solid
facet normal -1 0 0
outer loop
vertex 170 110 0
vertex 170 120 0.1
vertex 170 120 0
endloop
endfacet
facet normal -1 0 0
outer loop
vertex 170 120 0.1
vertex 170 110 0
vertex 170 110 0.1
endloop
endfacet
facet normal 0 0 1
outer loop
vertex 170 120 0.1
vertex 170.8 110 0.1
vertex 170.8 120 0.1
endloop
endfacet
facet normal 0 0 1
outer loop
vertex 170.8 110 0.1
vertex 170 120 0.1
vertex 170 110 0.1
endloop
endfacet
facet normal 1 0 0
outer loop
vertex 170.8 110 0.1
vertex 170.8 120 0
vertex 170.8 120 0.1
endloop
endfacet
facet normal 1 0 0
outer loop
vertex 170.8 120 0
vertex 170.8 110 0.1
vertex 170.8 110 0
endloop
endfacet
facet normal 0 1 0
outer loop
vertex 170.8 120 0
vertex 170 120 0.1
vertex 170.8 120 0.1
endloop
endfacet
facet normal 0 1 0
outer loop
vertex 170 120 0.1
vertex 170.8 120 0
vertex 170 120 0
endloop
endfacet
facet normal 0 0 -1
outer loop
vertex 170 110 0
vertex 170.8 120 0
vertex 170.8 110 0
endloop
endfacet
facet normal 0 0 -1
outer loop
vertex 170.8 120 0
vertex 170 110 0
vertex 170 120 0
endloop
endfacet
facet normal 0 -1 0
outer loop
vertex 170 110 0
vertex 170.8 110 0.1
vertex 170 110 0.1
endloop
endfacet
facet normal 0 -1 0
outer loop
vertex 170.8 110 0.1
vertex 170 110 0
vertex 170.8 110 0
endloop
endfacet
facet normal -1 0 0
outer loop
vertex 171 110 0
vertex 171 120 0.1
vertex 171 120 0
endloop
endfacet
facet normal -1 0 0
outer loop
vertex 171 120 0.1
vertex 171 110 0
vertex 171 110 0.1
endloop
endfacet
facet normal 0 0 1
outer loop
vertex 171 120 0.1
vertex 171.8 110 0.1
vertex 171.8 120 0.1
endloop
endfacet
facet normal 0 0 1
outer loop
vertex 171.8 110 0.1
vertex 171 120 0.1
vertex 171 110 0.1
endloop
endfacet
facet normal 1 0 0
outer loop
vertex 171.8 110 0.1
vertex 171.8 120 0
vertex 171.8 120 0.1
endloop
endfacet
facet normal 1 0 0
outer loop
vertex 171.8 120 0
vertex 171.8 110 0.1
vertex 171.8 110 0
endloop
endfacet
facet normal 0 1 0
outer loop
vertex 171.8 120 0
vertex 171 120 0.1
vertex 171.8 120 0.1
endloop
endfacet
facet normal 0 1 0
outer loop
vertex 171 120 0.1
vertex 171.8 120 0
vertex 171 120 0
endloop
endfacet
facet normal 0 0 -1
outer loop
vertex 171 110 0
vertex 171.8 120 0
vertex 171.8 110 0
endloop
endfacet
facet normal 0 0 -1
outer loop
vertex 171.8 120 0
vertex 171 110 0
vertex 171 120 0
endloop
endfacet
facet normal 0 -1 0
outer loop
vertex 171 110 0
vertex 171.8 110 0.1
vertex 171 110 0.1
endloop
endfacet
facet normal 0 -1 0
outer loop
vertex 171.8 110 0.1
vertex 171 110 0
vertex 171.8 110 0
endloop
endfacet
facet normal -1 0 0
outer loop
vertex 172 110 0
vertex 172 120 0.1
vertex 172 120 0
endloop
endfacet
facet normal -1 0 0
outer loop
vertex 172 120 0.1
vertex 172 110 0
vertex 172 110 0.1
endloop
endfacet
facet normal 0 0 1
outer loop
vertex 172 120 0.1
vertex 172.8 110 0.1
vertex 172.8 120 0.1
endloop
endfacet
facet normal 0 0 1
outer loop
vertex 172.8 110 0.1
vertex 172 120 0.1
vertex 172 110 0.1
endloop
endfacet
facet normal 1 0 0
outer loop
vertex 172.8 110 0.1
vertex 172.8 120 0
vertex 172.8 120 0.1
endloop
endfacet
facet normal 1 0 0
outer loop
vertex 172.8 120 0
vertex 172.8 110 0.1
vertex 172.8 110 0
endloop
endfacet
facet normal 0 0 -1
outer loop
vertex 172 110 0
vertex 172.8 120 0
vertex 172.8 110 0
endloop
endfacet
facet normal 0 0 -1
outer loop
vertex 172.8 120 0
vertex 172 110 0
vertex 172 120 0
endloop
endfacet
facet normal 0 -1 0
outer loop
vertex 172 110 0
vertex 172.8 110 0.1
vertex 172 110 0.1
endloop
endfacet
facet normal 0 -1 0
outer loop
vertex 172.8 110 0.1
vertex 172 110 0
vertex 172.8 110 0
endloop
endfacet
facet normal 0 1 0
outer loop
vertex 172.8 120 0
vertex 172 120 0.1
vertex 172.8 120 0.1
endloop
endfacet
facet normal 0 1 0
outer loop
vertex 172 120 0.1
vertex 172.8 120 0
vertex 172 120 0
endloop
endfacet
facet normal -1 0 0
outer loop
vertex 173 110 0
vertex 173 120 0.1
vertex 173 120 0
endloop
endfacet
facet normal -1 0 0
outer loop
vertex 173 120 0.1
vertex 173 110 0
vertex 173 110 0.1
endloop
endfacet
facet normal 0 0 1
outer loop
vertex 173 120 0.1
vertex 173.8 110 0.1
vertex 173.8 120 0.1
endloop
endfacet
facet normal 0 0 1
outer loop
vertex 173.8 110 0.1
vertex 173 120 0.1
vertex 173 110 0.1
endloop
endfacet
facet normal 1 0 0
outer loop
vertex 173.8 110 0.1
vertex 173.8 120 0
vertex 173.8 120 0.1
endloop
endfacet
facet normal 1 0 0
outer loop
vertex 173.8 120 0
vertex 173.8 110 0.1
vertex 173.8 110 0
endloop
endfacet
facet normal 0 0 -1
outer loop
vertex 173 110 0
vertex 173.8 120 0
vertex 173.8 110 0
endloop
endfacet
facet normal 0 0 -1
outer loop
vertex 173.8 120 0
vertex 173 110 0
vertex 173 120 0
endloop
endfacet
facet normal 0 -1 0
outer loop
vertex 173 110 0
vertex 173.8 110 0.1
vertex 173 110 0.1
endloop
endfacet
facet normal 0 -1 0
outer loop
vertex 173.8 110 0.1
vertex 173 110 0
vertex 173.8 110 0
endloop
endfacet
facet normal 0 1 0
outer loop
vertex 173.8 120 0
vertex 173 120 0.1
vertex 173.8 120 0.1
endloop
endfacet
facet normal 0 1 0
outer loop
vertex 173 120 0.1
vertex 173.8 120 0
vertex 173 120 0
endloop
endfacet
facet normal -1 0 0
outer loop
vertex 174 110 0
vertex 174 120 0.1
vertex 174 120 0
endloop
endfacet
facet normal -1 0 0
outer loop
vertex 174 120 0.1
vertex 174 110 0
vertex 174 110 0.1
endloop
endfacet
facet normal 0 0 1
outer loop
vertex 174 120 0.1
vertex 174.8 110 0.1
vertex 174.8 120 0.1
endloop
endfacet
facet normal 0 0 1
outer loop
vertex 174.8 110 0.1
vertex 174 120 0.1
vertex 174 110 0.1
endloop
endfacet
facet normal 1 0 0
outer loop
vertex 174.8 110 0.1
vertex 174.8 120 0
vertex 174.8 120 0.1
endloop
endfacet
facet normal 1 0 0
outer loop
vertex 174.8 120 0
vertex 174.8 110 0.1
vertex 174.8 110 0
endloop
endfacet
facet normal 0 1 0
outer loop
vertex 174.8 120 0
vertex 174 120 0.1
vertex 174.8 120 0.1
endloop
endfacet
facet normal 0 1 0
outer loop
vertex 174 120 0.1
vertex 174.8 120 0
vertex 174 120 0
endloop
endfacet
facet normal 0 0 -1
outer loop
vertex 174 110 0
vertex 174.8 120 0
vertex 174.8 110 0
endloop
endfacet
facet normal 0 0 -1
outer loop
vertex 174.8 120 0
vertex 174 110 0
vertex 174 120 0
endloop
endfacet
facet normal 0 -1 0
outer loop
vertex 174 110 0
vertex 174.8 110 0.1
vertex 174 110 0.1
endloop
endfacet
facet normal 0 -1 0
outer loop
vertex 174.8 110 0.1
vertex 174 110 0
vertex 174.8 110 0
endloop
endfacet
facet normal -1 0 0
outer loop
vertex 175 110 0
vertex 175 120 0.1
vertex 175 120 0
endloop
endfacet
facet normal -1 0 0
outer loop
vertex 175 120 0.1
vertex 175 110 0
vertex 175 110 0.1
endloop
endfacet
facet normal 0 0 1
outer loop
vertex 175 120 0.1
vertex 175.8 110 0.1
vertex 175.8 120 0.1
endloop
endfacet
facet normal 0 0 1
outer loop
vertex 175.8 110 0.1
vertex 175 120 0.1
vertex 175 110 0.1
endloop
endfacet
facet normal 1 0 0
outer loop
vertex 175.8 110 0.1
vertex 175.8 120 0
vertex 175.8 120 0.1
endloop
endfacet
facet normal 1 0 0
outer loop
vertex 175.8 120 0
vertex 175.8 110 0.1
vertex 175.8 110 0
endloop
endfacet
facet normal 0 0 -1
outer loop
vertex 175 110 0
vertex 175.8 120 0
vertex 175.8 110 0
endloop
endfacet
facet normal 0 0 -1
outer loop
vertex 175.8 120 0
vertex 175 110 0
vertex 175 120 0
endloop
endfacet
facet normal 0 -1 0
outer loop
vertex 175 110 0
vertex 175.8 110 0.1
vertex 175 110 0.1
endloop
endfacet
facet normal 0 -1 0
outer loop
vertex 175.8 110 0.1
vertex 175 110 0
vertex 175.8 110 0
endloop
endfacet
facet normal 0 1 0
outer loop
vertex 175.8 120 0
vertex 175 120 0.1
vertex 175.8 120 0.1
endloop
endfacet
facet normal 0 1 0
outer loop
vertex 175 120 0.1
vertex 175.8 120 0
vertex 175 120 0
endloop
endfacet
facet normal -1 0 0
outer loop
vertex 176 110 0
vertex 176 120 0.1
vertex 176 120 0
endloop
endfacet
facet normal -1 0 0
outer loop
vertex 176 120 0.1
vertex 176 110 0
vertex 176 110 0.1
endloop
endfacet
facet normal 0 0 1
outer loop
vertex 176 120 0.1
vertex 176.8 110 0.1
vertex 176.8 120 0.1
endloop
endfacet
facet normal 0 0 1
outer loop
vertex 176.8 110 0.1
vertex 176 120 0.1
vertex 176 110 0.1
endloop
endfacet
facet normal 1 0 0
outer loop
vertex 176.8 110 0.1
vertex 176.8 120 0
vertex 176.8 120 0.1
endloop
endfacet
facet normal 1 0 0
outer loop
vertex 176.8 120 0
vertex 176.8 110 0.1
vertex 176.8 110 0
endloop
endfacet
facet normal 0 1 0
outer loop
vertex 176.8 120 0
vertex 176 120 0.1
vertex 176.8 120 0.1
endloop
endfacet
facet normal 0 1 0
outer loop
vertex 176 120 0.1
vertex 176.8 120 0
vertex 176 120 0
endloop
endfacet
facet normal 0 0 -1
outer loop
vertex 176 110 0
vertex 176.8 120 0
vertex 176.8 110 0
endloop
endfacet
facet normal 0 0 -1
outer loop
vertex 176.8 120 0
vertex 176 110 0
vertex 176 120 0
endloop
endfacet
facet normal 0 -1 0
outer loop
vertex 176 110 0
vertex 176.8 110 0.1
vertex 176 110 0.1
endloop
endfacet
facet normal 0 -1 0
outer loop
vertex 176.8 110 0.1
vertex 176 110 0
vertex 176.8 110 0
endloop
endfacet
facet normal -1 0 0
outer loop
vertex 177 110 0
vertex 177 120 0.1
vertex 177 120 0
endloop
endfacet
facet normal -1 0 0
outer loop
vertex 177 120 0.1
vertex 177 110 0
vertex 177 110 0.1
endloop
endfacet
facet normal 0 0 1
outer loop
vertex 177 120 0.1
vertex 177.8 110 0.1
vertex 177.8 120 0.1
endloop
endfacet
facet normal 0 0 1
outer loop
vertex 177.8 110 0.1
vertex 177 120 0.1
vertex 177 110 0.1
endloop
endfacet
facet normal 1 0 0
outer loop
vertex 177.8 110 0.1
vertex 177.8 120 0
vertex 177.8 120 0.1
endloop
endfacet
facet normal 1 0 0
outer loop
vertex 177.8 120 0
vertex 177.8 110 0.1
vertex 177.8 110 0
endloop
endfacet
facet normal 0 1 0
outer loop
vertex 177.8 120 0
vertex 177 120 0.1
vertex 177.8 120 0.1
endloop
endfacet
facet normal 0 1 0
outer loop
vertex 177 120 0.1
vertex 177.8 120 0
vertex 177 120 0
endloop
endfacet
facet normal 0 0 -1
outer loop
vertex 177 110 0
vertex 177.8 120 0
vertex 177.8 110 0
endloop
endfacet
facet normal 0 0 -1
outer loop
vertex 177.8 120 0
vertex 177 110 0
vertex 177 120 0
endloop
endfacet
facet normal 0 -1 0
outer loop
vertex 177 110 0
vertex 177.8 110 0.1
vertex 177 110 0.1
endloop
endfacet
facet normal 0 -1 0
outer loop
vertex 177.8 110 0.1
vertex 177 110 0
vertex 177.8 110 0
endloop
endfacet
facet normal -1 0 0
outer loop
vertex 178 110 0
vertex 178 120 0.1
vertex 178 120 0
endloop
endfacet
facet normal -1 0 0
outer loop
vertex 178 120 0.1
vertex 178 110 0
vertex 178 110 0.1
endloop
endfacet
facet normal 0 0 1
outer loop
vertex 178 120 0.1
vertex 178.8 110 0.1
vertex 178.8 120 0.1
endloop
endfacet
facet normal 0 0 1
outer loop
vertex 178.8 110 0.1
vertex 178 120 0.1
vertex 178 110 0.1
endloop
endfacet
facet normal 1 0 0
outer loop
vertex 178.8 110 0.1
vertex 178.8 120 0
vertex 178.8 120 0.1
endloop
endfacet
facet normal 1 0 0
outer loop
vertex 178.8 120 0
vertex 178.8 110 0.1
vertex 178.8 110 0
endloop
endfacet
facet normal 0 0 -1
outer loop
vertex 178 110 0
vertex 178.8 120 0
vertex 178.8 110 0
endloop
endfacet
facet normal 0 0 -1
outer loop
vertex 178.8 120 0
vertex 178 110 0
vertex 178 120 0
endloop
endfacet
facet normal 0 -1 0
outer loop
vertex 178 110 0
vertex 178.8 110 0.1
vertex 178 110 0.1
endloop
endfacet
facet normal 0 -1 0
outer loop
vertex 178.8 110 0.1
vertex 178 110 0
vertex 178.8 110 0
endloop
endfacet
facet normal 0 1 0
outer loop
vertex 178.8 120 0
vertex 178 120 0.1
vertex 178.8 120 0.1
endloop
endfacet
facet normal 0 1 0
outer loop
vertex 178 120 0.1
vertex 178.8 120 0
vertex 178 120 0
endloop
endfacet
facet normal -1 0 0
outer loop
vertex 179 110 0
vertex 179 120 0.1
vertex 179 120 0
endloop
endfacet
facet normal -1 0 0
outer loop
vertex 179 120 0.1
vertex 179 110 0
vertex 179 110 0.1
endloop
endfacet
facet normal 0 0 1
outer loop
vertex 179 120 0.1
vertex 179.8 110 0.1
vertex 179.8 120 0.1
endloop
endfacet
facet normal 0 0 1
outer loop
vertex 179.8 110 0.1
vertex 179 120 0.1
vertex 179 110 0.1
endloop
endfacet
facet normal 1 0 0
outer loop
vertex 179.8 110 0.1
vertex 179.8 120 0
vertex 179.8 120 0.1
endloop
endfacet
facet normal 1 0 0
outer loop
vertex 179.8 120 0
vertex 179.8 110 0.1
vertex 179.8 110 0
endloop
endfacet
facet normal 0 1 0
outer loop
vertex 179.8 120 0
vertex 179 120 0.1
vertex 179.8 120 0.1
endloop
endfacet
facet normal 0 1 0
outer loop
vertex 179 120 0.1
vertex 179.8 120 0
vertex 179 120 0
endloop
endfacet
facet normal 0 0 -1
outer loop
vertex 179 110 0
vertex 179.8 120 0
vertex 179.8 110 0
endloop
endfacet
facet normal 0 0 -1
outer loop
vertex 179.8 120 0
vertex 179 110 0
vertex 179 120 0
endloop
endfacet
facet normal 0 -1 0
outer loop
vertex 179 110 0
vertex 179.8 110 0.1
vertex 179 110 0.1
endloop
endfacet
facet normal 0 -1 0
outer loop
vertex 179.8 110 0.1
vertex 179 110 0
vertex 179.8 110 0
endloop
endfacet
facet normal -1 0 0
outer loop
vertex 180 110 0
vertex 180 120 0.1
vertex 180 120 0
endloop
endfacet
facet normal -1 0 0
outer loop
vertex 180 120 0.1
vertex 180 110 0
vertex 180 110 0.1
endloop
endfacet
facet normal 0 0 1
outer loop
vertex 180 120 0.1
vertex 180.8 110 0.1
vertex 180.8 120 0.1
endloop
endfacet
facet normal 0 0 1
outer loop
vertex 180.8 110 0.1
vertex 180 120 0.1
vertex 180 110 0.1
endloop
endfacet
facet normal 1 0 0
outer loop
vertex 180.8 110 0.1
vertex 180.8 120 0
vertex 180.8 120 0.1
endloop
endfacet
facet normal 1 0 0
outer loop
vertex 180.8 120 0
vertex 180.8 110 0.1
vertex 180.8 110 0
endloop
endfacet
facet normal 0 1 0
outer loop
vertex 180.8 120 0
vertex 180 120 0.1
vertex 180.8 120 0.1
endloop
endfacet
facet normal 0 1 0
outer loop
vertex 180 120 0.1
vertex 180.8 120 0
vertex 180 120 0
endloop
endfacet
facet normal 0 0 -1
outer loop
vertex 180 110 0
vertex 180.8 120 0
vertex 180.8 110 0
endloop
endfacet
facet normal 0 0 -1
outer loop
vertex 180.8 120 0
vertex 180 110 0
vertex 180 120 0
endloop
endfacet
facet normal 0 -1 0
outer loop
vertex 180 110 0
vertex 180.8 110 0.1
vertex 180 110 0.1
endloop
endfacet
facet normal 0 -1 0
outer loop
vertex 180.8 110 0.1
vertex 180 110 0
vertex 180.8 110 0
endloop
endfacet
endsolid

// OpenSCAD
translate([10+160,10+100,0])
        for (i = [0 : 10]){
            translate([i,0,0])
                cube(size = [0.8,10,0.1]);
    }
